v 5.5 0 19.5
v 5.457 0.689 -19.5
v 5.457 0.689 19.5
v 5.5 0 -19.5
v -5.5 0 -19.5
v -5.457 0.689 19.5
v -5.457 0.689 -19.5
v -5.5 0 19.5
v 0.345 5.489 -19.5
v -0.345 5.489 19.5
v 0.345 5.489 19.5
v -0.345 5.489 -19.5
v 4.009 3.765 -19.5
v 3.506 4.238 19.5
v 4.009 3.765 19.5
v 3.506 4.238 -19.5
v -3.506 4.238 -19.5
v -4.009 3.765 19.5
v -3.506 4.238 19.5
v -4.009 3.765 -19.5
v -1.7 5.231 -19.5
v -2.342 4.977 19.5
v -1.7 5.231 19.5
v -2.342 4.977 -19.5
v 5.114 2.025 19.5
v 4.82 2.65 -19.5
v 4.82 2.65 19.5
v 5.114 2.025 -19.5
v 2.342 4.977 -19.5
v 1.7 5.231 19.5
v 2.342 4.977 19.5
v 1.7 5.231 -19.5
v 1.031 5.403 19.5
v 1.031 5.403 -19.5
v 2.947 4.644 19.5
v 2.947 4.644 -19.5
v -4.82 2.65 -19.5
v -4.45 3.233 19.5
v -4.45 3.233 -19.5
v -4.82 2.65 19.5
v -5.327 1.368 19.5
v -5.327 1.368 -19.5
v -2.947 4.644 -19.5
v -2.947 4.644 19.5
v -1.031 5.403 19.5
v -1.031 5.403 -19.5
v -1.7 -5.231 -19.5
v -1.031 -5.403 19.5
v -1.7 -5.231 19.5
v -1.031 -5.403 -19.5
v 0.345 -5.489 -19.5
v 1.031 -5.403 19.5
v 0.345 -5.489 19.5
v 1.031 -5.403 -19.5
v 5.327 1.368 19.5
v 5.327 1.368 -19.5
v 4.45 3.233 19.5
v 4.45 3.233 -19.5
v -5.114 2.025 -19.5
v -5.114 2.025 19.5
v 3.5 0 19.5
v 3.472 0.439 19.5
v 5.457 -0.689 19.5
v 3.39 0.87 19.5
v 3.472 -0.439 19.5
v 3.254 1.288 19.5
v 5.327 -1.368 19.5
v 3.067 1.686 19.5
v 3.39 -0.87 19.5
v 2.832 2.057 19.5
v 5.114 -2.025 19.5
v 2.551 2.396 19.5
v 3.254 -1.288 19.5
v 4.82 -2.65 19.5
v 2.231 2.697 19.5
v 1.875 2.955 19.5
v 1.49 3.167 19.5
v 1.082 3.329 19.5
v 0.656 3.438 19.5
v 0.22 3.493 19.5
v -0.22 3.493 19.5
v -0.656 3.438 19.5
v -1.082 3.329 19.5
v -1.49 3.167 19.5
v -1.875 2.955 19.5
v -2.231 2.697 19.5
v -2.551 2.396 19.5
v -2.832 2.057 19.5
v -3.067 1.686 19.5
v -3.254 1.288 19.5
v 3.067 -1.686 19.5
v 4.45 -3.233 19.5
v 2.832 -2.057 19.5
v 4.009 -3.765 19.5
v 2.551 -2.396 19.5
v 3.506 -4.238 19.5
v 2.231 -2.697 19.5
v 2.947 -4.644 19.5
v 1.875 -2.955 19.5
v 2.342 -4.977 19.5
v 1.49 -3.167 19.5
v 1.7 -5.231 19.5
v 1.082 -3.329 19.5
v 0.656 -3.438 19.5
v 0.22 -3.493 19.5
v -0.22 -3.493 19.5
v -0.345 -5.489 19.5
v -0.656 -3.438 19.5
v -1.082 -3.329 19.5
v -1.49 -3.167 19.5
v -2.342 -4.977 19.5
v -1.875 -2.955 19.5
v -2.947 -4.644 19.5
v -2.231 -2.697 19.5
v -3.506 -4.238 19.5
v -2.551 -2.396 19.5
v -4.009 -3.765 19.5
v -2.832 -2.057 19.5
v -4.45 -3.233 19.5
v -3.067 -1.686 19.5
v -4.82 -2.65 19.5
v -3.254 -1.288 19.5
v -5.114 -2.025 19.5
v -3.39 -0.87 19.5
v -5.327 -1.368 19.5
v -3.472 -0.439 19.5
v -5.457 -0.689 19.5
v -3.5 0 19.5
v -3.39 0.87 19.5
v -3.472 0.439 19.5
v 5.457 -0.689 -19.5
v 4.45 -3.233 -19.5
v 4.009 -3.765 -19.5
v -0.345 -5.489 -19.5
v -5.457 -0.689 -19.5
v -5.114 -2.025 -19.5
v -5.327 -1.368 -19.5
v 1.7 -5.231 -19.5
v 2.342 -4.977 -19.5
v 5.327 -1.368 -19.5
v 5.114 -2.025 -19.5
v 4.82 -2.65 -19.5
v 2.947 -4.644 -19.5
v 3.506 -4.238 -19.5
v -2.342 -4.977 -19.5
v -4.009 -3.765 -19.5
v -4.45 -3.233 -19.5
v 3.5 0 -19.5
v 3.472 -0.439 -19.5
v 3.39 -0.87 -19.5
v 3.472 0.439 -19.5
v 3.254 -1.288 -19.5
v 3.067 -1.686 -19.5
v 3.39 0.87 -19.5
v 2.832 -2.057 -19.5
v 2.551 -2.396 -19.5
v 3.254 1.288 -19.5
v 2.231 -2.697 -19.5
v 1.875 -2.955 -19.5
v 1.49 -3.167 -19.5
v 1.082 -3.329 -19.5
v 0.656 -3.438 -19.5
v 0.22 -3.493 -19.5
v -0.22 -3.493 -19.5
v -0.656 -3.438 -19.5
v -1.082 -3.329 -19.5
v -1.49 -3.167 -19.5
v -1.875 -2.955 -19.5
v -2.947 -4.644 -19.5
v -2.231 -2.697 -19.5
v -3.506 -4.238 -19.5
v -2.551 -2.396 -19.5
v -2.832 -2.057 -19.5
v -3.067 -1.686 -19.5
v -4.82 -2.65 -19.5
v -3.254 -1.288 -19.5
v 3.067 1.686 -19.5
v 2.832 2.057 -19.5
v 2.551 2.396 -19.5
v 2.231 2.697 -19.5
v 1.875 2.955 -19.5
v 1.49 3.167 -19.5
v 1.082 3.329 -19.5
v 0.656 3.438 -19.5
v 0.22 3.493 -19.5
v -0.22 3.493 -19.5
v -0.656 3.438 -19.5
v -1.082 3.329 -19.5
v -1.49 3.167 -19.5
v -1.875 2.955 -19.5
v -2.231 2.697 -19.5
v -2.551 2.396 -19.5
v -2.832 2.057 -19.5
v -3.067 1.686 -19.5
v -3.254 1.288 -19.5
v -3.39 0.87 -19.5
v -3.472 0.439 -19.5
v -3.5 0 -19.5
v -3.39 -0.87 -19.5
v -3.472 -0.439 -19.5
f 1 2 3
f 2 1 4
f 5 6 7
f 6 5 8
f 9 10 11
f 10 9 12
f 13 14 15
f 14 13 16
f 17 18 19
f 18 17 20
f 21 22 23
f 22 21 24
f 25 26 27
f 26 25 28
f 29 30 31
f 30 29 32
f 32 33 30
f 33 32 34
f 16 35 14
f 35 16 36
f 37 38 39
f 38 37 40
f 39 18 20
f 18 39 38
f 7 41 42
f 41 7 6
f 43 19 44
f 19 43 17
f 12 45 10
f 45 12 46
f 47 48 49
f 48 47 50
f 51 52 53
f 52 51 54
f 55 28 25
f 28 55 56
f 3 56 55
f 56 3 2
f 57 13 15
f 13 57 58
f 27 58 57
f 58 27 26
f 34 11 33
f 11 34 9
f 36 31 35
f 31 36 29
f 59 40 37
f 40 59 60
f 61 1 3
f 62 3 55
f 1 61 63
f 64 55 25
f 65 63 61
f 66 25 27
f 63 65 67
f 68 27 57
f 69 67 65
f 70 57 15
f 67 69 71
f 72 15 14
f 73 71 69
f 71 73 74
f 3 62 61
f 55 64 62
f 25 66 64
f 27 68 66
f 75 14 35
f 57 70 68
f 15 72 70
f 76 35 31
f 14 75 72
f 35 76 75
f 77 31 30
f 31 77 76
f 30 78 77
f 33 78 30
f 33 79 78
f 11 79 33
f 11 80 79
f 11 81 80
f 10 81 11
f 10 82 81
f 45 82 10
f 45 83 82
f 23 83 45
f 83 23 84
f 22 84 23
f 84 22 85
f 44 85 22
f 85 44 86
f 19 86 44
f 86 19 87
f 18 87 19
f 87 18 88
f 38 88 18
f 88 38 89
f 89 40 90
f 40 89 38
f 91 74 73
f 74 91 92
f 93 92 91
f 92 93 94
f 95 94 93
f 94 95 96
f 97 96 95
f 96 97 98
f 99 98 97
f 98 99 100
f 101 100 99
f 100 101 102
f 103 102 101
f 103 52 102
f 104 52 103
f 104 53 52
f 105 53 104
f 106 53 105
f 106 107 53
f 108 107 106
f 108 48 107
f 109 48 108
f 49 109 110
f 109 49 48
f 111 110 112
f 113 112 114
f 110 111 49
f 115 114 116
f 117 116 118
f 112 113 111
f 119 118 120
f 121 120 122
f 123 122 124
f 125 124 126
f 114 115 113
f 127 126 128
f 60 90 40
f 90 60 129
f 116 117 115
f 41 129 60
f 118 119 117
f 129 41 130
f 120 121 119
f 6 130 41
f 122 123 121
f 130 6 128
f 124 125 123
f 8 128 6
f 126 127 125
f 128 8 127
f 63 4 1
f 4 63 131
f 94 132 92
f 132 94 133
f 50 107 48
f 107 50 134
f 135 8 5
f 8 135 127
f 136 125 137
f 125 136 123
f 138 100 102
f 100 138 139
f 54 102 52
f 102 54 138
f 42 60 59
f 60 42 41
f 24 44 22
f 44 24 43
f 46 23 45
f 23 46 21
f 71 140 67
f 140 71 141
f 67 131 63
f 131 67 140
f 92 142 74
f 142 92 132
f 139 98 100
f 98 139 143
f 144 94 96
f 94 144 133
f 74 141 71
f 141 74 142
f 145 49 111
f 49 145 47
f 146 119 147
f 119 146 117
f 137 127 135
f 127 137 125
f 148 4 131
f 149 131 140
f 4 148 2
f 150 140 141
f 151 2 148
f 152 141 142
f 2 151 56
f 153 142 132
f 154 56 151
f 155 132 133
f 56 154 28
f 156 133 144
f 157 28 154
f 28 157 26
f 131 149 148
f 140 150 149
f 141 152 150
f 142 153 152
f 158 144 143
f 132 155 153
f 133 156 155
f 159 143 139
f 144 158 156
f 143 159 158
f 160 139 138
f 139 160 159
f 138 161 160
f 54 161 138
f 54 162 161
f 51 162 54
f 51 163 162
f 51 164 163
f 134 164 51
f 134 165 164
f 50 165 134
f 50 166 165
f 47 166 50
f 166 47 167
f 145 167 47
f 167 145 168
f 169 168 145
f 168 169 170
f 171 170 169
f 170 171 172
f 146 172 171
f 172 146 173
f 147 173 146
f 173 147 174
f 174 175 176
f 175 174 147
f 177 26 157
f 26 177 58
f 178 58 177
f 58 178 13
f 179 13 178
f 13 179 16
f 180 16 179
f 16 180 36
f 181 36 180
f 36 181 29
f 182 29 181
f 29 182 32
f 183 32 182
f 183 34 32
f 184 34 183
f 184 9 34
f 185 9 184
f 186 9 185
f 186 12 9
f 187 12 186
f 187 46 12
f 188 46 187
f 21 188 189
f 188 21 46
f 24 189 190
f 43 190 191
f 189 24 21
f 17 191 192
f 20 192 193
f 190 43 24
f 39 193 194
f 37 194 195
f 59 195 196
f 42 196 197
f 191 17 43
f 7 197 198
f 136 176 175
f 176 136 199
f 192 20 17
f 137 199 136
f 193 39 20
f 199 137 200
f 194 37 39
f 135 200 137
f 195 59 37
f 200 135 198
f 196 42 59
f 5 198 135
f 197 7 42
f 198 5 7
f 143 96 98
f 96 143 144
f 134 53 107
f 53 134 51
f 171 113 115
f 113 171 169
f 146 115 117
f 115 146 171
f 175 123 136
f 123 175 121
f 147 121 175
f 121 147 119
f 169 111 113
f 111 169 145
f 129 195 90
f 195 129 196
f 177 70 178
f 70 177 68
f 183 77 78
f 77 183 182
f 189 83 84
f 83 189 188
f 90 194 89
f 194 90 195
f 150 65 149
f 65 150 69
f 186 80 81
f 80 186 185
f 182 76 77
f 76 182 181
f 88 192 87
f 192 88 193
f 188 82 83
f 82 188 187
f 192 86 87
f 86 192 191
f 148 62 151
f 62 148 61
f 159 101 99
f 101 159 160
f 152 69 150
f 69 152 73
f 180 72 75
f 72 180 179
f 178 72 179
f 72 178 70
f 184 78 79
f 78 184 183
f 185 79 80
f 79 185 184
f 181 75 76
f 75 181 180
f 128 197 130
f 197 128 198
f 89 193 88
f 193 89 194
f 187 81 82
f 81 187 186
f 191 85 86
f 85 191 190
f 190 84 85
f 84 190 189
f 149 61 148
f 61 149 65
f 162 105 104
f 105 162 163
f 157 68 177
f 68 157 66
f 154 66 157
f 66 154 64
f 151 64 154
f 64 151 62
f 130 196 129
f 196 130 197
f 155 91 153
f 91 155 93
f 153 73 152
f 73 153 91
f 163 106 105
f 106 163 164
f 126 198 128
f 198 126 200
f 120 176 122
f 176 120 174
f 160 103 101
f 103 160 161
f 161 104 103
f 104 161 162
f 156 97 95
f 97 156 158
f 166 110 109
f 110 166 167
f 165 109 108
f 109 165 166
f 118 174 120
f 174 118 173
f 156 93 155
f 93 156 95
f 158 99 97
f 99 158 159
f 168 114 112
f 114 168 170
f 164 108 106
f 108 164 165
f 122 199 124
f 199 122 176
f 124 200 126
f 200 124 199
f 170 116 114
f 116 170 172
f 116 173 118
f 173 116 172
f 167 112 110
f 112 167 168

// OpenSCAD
$fn = 50;


difference() {
	union() {
		translate(v = [0, 0, -19.5000000000]) {
			cylinder(h = 39, r = 5.5000000000);
		}
	}
	union() {
		translate(v = [0, 0, -100.0000000000]) {
			cylinder(h = 200, r = 3.5000000000);
		}
	}
}
